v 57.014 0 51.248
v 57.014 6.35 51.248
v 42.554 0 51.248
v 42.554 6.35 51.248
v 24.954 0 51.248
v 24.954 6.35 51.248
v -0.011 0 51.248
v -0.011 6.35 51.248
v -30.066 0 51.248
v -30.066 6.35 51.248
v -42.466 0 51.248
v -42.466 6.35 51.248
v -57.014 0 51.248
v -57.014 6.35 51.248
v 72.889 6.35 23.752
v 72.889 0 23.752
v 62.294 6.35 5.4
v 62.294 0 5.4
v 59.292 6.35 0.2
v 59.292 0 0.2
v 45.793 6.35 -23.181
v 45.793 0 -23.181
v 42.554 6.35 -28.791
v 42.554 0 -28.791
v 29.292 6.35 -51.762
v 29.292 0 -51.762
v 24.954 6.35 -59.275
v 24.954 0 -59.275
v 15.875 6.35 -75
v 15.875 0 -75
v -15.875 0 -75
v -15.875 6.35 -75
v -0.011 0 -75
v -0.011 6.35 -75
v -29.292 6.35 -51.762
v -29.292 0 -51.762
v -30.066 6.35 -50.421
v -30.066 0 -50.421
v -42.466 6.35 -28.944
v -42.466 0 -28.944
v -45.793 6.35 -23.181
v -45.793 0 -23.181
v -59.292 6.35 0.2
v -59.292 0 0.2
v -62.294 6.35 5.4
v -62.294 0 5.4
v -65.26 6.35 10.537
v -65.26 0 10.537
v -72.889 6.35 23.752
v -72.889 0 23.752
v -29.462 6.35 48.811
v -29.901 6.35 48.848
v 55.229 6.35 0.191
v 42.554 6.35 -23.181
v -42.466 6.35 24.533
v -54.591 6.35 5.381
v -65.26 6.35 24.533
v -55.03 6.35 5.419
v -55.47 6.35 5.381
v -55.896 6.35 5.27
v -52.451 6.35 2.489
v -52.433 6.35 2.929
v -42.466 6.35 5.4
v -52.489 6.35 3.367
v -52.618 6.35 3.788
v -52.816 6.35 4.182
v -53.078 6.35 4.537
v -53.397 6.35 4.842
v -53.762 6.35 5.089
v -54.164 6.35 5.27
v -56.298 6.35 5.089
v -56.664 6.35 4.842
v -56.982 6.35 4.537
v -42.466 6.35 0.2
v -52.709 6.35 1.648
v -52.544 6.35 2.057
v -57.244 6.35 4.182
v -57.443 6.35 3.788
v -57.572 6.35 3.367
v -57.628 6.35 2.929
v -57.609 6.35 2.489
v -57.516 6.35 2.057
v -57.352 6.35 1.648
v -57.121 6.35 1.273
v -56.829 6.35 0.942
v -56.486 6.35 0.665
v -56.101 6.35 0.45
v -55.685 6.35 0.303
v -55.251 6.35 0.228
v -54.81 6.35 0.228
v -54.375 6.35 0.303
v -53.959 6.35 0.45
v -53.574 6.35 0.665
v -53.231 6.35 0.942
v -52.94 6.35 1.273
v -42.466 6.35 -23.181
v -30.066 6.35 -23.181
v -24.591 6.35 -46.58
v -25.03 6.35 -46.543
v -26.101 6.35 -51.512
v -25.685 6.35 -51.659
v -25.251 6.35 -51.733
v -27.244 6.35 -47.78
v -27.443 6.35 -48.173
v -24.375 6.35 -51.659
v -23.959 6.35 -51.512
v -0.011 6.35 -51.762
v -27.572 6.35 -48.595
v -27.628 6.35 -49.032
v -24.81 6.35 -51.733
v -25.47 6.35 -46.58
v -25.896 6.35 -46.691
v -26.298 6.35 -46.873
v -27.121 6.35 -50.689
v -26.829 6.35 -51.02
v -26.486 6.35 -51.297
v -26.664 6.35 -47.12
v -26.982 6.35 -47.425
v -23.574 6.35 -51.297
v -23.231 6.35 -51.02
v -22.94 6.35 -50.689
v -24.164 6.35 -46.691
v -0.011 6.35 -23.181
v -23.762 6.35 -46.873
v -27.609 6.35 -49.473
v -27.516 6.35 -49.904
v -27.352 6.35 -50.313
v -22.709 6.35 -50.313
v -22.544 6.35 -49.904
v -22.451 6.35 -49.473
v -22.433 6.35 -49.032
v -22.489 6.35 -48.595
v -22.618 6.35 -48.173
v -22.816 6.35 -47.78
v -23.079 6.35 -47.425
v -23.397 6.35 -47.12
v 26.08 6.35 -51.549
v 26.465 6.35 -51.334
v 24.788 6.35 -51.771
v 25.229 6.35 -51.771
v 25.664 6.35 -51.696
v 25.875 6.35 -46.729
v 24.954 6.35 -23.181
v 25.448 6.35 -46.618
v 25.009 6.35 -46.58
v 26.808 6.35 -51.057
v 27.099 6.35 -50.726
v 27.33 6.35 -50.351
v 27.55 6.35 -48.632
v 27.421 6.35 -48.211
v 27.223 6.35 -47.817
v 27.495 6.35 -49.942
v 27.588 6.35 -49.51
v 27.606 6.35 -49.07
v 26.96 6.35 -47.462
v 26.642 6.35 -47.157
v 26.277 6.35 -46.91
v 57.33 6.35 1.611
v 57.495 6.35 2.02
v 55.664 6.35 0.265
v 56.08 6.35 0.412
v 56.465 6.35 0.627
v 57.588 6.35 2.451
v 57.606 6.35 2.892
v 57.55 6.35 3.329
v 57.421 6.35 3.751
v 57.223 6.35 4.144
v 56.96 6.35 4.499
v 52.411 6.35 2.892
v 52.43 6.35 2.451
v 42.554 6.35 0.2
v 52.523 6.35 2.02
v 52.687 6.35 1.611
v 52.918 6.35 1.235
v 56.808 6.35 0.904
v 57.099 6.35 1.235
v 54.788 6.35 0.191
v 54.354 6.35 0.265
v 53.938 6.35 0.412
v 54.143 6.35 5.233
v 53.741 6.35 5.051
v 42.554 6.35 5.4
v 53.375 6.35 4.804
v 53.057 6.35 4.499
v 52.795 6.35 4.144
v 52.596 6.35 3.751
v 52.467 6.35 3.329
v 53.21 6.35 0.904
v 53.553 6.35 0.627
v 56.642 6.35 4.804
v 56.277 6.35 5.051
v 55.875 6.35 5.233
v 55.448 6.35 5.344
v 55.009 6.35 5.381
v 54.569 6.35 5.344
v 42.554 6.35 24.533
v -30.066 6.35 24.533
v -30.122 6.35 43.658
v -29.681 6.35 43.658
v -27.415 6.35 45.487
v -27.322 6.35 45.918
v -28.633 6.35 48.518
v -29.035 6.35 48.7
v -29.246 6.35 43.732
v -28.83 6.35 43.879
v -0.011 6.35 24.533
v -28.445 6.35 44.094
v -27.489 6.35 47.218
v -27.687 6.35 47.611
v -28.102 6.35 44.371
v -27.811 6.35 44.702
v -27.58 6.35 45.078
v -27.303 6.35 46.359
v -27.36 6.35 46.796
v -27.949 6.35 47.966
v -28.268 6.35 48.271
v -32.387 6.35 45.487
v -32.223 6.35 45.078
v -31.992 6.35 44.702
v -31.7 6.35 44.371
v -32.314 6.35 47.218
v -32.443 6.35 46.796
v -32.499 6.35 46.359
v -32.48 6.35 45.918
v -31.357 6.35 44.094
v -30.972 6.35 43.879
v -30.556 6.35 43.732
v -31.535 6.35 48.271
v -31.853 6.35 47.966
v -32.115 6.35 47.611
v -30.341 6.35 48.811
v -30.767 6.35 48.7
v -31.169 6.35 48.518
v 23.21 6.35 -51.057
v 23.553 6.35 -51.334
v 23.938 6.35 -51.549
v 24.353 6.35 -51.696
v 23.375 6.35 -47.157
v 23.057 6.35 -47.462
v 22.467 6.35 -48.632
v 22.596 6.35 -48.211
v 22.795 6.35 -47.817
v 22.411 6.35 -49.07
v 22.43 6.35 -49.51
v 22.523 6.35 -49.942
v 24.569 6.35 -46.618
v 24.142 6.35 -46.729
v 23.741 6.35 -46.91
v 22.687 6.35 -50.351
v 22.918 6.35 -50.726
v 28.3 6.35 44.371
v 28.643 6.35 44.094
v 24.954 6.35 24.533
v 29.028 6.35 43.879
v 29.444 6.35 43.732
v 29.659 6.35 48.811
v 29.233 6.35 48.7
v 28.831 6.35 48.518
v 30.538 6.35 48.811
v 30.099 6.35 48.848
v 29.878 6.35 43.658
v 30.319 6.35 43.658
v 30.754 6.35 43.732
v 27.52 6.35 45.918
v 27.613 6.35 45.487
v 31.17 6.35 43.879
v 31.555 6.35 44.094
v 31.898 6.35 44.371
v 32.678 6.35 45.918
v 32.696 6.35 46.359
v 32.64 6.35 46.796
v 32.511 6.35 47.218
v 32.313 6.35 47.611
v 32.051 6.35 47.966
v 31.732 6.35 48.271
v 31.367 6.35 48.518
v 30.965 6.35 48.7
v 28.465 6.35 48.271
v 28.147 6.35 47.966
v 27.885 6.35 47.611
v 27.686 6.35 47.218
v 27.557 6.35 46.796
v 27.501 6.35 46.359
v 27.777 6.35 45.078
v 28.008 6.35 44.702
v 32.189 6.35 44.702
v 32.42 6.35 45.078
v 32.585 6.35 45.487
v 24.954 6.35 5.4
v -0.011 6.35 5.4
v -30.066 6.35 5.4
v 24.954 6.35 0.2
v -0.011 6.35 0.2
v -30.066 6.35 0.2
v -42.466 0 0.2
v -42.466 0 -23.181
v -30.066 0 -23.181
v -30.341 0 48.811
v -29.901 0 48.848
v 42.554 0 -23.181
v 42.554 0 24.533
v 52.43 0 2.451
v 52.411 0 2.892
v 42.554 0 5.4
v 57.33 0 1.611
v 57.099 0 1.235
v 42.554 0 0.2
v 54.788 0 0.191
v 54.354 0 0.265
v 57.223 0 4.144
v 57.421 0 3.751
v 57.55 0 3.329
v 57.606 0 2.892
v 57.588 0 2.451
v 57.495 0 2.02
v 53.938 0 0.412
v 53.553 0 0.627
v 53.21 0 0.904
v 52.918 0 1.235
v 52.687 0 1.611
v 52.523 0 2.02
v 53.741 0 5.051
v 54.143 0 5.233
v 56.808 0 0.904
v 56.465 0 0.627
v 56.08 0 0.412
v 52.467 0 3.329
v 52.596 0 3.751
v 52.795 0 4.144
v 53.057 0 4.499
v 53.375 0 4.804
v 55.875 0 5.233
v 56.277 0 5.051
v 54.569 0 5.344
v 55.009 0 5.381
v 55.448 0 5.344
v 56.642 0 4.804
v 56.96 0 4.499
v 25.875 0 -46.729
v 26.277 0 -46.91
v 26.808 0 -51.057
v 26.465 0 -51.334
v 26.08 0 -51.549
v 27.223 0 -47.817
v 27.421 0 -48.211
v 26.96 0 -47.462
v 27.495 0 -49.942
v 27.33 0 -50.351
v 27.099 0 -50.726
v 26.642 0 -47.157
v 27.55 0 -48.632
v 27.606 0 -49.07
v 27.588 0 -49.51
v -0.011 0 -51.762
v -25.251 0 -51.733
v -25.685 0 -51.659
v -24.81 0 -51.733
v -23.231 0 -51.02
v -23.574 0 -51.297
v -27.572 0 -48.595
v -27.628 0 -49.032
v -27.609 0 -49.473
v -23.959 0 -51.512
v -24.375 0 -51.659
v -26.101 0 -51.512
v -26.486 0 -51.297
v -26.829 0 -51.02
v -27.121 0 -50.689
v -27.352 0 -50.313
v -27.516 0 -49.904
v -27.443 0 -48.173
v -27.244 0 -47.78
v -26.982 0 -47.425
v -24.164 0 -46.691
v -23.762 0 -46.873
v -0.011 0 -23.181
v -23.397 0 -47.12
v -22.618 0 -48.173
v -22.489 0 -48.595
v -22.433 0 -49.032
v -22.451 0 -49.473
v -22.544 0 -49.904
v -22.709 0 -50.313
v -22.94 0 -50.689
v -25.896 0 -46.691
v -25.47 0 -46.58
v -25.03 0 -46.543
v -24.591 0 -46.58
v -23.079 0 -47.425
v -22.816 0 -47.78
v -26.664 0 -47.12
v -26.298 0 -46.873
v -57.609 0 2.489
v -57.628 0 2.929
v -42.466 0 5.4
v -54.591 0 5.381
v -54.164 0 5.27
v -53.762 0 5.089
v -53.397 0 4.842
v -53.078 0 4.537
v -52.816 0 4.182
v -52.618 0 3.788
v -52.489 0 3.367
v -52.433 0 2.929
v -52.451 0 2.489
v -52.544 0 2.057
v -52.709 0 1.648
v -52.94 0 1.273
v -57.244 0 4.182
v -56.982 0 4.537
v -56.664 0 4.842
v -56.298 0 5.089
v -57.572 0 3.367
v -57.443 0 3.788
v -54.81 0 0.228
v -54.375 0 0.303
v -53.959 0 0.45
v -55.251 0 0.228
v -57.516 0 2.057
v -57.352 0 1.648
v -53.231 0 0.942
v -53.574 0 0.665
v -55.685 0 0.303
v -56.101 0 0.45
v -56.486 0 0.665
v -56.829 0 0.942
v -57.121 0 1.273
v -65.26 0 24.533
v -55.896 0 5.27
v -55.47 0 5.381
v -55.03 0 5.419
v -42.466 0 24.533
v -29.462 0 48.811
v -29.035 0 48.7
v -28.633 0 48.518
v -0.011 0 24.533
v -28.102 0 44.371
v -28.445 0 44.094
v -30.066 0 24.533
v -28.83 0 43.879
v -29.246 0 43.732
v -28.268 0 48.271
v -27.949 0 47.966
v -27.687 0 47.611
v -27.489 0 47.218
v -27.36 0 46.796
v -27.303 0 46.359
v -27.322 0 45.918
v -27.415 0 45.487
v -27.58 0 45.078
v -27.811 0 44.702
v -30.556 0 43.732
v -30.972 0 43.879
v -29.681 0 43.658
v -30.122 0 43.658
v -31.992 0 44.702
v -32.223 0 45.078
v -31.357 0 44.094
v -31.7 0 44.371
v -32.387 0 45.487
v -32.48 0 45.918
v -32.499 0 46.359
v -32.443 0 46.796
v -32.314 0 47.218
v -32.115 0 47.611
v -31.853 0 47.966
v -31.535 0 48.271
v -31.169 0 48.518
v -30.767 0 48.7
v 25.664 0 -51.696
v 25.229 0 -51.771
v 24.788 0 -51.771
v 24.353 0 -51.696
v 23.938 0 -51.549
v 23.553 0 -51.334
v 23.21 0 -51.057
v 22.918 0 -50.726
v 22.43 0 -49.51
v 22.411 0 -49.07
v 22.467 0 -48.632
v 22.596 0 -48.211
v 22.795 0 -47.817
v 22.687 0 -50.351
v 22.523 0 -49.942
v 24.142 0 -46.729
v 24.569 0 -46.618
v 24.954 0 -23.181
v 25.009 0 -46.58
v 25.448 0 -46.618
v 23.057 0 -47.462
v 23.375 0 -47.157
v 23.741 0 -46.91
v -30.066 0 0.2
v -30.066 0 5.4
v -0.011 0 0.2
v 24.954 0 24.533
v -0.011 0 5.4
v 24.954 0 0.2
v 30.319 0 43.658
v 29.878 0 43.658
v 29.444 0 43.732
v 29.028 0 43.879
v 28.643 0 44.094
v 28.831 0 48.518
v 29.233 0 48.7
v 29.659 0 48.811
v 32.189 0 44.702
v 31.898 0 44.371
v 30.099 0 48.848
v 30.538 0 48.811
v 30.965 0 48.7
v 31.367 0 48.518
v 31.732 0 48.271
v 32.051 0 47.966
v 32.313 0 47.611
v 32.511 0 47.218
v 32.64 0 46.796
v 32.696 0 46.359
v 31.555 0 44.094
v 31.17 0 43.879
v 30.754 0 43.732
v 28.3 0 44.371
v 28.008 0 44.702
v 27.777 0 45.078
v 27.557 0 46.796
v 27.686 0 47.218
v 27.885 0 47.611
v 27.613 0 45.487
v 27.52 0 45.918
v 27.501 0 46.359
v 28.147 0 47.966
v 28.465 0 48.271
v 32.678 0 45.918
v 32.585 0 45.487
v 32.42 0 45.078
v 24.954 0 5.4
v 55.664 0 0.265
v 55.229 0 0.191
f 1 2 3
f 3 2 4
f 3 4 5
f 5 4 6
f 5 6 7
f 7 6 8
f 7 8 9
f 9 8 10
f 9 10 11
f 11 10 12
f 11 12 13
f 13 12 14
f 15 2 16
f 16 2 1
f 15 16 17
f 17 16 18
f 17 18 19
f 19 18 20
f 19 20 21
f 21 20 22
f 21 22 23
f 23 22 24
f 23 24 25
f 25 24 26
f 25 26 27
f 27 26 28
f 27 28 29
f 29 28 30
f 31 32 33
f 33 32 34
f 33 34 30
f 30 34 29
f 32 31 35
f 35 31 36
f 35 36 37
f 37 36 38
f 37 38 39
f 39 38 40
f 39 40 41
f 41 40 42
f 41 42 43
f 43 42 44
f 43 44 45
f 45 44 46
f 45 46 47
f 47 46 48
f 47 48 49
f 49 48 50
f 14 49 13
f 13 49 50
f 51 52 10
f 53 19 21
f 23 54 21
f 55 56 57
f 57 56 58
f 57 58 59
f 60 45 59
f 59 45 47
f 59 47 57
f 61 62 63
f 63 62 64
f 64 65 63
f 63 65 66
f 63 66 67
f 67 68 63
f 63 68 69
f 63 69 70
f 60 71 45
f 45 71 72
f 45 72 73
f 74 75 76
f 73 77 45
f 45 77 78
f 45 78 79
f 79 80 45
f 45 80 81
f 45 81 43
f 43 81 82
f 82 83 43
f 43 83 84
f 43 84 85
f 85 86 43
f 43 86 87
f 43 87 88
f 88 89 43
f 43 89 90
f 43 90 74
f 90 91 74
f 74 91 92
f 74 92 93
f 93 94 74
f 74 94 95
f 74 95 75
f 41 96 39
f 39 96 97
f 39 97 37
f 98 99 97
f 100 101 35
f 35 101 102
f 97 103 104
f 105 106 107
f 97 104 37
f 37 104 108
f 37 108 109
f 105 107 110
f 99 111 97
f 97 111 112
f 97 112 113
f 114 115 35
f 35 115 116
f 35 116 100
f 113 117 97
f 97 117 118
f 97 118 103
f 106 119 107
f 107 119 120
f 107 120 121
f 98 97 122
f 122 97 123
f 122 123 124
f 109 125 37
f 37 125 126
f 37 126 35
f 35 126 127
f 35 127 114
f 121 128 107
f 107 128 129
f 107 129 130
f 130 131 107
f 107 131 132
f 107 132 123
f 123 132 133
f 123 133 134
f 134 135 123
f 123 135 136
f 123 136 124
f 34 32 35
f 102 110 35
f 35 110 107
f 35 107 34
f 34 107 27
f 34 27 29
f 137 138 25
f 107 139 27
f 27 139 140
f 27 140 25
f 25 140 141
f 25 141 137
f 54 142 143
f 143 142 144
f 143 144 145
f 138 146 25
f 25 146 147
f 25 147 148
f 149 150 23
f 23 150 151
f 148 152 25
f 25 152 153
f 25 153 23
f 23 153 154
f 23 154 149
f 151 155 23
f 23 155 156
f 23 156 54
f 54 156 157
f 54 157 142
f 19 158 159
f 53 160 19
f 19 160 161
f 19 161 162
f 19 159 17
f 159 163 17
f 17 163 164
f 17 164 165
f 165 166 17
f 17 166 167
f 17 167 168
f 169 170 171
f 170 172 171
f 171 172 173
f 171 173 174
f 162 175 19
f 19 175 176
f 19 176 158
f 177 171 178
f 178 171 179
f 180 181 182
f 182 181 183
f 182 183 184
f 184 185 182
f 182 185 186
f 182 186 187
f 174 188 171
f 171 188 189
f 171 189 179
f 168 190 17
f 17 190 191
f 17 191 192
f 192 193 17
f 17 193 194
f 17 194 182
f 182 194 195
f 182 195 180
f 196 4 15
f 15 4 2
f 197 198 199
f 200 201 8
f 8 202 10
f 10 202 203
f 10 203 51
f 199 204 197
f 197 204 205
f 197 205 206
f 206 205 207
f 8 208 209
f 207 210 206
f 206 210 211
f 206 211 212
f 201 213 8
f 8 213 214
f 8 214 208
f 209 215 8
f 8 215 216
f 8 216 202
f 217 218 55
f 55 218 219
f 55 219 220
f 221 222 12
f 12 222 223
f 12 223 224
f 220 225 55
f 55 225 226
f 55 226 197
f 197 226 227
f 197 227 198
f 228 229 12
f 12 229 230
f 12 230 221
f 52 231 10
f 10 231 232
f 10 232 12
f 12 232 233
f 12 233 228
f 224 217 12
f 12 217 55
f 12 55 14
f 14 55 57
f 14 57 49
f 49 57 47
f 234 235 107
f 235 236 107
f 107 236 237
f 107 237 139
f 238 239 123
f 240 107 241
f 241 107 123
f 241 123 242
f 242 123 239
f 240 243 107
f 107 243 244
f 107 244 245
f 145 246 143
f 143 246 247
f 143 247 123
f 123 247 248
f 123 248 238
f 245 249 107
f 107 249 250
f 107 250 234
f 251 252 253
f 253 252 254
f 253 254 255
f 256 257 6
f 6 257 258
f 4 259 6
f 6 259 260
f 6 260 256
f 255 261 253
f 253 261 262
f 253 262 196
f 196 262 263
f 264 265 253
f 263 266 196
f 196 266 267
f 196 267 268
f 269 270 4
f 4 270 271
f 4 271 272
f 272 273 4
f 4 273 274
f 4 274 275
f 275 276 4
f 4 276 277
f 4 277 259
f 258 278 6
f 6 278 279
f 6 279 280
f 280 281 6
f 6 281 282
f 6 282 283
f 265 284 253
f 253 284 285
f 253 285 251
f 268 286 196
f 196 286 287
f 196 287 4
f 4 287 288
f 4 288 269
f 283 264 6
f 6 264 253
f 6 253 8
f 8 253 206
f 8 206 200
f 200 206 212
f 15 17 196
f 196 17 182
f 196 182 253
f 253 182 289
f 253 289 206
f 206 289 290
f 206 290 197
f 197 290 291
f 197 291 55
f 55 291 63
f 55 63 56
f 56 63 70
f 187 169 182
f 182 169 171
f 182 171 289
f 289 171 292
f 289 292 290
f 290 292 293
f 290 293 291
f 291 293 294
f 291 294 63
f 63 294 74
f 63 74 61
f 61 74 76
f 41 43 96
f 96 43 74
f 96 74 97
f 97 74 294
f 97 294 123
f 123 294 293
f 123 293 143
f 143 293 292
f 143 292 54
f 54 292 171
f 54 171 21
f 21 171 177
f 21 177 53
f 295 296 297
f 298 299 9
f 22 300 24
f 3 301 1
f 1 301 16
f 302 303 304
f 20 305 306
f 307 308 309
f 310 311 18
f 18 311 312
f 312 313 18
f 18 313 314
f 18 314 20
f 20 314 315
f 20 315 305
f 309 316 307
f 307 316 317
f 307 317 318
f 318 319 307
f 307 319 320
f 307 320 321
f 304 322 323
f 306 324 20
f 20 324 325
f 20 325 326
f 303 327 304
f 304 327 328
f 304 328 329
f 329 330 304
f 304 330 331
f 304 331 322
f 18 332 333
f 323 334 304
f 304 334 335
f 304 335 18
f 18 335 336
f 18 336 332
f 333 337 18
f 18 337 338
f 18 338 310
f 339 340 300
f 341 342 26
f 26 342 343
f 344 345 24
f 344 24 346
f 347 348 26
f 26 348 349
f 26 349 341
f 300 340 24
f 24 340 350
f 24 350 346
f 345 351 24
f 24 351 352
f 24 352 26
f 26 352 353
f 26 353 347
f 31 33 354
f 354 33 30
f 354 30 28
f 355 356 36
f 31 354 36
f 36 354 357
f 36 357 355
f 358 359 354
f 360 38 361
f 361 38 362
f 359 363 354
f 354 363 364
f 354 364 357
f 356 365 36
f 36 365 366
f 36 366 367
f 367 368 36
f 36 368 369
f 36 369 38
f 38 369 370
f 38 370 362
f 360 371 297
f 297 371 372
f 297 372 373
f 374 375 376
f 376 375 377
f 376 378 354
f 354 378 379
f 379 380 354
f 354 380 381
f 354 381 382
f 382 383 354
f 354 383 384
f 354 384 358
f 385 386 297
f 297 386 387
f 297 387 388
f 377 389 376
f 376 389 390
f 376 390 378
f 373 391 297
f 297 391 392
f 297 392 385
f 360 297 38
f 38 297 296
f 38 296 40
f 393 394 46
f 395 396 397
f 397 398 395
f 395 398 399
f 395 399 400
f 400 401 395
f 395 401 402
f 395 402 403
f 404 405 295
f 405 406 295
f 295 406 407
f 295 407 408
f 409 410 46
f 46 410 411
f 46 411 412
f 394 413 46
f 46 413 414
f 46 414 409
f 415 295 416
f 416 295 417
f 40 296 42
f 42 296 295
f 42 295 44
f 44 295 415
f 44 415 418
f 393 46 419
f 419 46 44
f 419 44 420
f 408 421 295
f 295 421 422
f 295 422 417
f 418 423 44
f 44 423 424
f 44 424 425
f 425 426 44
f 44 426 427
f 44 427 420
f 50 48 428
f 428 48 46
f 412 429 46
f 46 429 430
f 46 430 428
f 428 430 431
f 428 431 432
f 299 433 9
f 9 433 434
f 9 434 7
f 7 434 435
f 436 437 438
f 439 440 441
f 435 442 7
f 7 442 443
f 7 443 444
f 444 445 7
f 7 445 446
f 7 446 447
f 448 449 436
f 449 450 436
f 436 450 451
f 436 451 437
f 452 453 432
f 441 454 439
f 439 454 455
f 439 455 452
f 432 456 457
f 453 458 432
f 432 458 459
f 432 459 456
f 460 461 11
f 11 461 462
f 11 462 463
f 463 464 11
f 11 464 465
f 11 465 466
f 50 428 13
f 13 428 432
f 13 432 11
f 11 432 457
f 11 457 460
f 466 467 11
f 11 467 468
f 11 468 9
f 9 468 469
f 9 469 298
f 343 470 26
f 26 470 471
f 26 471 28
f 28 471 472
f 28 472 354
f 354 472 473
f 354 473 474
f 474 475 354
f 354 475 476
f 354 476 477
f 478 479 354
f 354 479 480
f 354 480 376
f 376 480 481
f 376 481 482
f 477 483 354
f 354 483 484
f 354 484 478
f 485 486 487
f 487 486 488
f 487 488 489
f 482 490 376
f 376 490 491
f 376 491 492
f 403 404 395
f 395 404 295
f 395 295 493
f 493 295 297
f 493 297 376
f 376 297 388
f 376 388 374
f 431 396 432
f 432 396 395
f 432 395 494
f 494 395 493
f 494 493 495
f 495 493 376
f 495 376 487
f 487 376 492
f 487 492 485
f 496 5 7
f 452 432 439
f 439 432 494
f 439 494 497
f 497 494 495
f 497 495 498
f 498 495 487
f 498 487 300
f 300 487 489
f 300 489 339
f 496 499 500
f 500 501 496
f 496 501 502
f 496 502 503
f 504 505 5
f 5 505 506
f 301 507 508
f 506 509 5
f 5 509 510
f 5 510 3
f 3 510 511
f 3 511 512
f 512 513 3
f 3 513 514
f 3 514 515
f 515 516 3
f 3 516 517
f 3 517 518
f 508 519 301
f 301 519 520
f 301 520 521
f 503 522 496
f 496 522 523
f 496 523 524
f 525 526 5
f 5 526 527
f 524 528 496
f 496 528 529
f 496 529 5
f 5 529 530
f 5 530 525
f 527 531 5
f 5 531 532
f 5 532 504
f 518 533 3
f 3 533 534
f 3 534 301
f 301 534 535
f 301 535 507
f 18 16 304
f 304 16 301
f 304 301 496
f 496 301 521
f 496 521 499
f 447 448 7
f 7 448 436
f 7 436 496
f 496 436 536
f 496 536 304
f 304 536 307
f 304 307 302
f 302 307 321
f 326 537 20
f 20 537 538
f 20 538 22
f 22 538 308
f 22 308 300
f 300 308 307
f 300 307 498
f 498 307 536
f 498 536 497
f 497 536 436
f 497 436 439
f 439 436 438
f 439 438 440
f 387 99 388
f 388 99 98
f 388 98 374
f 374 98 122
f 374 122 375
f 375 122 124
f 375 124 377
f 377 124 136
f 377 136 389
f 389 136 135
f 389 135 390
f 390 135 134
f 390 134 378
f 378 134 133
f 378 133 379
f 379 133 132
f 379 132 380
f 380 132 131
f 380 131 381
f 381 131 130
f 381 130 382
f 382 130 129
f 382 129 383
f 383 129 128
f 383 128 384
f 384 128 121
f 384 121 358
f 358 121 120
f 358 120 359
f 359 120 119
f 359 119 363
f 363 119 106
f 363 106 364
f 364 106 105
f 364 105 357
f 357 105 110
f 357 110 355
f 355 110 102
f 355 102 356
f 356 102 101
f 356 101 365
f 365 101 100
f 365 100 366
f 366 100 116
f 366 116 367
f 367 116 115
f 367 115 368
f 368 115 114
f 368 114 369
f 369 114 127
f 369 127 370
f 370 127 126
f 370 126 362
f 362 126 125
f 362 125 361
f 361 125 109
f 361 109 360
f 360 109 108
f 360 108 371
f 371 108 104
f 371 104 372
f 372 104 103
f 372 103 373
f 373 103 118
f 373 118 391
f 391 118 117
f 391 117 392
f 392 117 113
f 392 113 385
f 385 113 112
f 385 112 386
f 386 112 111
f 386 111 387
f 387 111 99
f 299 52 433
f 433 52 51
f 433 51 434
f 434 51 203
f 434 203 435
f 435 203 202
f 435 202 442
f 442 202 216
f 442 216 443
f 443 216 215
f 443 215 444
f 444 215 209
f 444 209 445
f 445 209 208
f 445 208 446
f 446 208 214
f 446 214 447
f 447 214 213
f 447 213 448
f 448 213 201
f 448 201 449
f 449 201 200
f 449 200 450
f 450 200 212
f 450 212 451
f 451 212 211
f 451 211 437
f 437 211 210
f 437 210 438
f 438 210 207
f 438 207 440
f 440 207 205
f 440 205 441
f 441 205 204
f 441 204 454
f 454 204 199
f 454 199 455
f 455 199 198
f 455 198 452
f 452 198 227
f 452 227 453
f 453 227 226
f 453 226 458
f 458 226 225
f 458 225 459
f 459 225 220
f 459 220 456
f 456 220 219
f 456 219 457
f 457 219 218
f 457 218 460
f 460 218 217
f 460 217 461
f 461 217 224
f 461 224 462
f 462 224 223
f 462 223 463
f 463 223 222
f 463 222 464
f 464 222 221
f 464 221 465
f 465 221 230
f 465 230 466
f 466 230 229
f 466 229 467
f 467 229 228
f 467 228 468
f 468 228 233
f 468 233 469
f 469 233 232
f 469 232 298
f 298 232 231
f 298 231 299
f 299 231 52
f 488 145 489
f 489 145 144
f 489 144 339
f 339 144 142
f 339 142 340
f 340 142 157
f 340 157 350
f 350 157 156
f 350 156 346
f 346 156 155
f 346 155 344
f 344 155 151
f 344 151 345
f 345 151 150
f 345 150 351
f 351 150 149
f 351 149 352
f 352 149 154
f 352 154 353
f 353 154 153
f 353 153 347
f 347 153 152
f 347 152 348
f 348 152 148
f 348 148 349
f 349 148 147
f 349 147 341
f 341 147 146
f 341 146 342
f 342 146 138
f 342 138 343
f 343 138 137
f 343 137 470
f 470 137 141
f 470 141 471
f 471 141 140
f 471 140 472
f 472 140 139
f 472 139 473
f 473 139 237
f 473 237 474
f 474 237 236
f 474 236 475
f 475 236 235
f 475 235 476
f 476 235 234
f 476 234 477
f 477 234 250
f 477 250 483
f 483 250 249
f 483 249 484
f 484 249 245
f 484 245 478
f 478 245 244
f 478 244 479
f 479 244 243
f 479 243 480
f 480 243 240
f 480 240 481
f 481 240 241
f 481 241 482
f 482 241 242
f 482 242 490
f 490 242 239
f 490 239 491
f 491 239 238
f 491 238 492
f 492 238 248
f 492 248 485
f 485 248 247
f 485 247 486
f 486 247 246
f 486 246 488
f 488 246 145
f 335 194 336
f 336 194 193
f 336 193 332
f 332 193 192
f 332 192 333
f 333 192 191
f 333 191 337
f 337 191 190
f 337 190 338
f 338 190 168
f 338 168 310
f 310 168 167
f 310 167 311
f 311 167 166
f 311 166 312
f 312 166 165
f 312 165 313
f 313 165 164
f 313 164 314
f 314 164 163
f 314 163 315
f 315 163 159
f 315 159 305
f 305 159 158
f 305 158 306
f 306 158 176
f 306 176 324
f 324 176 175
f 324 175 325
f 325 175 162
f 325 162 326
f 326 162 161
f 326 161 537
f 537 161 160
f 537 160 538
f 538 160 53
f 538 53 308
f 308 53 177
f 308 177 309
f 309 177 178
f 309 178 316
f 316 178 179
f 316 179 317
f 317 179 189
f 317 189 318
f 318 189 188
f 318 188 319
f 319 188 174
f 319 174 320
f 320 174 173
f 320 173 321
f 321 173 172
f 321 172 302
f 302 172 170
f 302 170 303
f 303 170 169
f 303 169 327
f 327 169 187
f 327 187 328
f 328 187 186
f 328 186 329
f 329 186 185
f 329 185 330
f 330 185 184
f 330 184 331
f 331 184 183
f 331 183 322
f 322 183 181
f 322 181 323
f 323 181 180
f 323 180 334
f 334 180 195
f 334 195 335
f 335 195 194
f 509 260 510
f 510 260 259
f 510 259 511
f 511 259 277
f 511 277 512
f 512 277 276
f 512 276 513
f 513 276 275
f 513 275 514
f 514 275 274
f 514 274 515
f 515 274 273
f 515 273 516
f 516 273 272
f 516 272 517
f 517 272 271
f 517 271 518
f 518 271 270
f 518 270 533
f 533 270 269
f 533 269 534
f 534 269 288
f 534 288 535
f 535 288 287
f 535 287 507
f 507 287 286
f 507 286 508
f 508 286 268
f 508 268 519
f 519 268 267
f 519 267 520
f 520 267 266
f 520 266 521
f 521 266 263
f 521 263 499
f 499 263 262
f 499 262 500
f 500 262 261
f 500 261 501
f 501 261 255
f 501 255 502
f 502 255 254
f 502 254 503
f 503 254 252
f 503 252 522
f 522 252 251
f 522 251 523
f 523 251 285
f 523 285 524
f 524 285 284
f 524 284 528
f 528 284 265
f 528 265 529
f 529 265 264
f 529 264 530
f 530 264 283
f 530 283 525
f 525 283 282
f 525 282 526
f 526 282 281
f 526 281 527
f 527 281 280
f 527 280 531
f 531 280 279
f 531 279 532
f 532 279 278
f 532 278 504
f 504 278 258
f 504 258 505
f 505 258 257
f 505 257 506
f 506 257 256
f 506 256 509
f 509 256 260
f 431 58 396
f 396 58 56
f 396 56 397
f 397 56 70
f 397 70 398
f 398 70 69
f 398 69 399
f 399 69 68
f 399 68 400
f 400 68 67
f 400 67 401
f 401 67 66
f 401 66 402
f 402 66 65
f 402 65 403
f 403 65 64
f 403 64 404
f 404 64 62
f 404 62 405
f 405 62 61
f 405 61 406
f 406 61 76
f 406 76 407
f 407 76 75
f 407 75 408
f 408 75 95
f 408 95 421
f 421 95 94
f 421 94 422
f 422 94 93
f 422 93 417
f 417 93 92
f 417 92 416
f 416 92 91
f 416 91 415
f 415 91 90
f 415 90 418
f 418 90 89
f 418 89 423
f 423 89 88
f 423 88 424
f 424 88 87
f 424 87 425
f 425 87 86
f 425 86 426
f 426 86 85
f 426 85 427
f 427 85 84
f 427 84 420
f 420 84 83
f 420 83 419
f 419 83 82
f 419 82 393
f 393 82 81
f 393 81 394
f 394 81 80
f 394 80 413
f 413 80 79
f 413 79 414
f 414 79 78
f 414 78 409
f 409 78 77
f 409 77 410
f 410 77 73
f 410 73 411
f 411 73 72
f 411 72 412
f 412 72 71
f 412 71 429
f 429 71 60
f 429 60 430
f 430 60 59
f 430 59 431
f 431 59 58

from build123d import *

# Parameters (mm, degrees)
BOSS_EXTRUDE1_DEPTH = 6.35
SKETCH9_R           = 2.6
CUT_EXTRUDE1_DEPTH  = 105.776848123


with BuildPart() as part:
    # Sketch1 → Boss-Extrude1 (new body)
    with BuildSketch(Plane(origin=(0, 0, 0), x_dir=(1, 0, 0), z_dir=(0, 1, 0))):
        Polygon((-15.875, 75), (15.875, 75), (72.889405284, -23.751846715), (57.014405284, -51.248153285), (-57.014405284, -51.248153285), (-72.889405284, -23.751846715), align=None)
    extrude(amount=BOSS_EXTRUDE1_DEPTH)

    # Sketch9 → Cut-Extrude1 (cut, through all)
    with BuildSketch(Plane(origin=(0, 6.35, 0), x_dir=(1, 0, 0), z_dir=(0, 1, 0))):
        with Locations(Location((-25.030312278, 49.142819263, 0), (0, 0, 270))):
            Circle(SKETCH9_R)
        with Locations(Location((25.008570083, 49.180192562, 0), (0, 0, 270))):
            Circle(SKETCH9_R)
        with Locations(Location((55.008731986, -2.78123819, 0), (0, 0, 270))):
            Circle(SKETCH9_R)
        with Locations(Location((30.09884337, -46.248153285, 0), (0, 0, 270))):
            Circle(SKETCH9_R)
        with Locations(Location((-55.030188745, -2.818776286, 0), (0, 0, 270))):
            Circle(SKETCH9_R)
        with Locations(Location((-29.90115663, -46.248153285, 0), (0, 0, 270))):
            Circle(SKETCH9_R)
    extrude(amount=-CUT_EXTRUDE1_DEPTH, mode=Mode.SUBTRACT)


solid = part.part
